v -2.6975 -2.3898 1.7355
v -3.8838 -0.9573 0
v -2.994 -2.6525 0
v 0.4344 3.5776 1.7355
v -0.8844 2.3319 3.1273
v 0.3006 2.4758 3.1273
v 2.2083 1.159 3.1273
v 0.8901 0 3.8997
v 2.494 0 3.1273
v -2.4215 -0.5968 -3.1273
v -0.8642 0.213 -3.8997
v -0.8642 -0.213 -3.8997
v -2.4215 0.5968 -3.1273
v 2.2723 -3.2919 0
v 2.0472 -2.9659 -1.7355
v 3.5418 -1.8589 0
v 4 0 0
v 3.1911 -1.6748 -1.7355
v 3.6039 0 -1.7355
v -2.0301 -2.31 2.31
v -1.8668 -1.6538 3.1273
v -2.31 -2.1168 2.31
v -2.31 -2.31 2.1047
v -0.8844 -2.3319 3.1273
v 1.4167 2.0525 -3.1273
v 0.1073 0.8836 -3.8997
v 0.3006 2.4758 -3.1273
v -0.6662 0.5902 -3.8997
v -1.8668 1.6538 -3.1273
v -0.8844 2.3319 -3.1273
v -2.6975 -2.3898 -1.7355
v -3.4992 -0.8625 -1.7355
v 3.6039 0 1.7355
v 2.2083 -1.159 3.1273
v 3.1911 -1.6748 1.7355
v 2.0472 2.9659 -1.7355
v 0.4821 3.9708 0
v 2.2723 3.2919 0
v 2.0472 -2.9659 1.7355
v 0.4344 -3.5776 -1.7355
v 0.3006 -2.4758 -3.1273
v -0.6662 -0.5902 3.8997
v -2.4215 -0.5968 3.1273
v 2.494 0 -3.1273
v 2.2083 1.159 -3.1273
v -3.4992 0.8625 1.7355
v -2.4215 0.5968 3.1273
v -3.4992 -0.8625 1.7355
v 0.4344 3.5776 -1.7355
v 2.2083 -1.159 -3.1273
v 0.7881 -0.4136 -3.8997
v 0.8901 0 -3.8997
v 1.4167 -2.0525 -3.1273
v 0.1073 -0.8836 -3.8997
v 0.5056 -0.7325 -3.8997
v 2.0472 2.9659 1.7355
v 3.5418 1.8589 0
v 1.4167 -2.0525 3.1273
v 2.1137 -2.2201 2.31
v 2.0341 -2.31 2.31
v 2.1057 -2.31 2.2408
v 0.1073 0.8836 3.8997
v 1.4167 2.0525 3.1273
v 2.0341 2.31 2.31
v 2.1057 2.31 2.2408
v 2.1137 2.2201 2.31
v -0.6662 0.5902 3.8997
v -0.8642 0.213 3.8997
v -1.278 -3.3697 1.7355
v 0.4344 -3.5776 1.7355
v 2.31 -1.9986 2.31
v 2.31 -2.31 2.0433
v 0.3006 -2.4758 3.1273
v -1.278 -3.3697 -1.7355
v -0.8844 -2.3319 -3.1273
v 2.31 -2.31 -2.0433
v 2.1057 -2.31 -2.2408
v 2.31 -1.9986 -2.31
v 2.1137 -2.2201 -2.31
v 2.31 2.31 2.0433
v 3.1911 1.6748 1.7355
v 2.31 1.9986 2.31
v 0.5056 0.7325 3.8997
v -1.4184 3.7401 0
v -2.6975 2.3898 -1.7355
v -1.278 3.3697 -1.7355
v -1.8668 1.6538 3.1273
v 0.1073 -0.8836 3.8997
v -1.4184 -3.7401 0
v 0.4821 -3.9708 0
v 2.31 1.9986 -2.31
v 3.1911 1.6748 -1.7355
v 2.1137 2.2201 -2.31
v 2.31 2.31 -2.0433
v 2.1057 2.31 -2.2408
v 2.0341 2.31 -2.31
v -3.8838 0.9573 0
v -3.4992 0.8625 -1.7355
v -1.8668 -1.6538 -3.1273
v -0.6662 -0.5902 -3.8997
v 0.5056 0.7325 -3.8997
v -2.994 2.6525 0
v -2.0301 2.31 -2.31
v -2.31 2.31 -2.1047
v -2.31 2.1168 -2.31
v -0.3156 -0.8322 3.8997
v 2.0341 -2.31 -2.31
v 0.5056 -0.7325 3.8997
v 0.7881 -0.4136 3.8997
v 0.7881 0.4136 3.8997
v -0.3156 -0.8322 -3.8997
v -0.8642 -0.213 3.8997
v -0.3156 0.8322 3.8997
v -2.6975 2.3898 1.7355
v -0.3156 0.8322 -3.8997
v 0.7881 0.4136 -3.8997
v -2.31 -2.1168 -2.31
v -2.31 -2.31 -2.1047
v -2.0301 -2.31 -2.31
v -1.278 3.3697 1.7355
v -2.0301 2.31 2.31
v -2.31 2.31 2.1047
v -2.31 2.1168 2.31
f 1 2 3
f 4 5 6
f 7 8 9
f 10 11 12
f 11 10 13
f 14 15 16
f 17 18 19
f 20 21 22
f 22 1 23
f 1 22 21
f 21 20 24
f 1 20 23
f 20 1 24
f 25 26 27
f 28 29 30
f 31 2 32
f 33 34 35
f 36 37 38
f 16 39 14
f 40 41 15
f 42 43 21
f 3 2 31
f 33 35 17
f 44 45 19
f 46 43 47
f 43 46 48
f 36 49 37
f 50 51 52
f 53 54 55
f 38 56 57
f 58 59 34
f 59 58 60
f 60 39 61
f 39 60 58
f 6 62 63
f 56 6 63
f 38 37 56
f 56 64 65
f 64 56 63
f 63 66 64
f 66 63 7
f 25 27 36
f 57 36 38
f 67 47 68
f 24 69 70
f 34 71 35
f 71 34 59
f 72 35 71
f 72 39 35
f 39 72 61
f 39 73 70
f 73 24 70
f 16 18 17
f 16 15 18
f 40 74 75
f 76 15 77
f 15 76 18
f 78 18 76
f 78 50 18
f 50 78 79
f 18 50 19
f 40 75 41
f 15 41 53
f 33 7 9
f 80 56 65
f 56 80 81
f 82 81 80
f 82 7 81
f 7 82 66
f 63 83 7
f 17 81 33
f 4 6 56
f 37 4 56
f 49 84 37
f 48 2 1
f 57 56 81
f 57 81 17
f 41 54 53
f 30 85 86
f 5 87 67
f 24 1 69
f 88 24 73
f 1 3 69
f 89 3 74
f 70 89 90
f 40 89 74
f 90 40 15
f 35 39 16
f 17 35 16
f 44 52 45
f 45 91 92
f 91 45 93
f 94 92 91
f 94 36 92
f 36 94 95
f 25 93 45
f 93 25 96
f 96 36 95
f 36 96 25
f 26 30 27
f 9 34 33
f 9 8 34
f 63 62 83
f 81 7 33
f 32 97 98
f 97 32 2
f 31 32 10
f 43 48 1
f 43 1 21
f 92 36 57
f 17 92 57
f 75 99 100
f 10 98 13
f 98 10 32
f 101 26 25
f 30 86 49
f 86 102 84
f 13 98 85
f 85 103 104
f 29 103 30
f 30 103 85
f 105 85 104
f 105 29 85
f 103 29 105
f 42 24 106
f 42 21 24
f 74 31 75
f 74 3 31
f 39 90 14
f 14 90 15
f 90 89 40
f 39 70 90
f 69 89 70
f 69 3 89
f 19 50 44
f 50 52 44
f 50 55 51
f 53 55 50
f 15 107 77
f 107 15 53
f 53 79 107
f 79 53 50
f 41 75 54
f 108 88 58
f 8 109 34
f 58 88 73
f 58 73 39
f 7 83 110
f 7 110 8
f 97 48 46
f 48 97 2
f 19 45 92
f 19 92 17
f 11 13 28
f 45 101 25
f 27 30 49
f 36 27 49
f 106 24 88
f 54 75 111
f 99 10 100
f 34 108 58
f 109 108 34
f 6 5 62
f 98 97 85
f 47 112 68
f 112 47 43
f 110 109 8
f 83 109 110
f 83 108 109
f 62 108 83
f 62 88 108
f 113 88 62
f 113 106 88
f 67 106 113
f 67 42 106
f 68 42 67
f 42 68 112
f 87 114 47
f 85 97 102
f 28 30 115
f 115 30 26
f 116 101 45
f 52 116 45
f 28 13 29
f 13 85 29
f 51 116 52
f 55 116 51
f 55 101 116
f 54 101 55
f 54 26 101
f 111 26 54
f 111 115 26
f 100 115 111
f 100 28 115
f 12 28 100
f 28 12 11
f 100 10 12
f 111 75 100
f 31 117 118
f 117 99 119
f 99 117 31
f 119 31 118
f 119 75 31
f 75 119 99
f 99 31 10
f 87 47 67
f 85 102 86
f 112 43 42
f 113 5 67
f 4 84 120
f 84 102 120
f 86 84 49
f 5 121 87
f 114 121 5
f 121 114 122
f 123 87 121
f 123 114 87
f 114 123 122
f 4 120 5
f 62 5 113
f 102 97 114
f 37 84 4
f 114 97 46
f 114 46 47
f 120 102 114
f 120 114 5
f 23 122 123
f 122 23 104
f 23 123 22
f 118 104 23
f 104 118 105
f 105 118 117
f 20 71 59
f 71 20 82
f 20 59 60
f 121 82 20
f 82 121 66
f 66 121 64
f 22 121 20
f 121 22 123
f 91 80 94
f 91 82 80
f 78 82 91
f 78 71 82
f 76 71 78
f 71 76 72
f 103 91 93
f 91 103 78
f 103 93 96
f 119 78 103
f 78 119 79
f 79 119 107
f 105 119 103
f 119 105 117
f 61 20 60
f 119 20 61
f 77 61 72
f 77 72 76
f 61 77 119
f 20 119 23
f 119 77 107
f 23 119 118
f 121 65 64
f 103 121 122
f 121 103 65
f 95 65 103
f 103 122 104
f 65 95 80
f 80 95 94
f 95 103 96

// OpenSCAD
difference(){
    sphere(d=8);
    cube(4.62, center=true);
}
